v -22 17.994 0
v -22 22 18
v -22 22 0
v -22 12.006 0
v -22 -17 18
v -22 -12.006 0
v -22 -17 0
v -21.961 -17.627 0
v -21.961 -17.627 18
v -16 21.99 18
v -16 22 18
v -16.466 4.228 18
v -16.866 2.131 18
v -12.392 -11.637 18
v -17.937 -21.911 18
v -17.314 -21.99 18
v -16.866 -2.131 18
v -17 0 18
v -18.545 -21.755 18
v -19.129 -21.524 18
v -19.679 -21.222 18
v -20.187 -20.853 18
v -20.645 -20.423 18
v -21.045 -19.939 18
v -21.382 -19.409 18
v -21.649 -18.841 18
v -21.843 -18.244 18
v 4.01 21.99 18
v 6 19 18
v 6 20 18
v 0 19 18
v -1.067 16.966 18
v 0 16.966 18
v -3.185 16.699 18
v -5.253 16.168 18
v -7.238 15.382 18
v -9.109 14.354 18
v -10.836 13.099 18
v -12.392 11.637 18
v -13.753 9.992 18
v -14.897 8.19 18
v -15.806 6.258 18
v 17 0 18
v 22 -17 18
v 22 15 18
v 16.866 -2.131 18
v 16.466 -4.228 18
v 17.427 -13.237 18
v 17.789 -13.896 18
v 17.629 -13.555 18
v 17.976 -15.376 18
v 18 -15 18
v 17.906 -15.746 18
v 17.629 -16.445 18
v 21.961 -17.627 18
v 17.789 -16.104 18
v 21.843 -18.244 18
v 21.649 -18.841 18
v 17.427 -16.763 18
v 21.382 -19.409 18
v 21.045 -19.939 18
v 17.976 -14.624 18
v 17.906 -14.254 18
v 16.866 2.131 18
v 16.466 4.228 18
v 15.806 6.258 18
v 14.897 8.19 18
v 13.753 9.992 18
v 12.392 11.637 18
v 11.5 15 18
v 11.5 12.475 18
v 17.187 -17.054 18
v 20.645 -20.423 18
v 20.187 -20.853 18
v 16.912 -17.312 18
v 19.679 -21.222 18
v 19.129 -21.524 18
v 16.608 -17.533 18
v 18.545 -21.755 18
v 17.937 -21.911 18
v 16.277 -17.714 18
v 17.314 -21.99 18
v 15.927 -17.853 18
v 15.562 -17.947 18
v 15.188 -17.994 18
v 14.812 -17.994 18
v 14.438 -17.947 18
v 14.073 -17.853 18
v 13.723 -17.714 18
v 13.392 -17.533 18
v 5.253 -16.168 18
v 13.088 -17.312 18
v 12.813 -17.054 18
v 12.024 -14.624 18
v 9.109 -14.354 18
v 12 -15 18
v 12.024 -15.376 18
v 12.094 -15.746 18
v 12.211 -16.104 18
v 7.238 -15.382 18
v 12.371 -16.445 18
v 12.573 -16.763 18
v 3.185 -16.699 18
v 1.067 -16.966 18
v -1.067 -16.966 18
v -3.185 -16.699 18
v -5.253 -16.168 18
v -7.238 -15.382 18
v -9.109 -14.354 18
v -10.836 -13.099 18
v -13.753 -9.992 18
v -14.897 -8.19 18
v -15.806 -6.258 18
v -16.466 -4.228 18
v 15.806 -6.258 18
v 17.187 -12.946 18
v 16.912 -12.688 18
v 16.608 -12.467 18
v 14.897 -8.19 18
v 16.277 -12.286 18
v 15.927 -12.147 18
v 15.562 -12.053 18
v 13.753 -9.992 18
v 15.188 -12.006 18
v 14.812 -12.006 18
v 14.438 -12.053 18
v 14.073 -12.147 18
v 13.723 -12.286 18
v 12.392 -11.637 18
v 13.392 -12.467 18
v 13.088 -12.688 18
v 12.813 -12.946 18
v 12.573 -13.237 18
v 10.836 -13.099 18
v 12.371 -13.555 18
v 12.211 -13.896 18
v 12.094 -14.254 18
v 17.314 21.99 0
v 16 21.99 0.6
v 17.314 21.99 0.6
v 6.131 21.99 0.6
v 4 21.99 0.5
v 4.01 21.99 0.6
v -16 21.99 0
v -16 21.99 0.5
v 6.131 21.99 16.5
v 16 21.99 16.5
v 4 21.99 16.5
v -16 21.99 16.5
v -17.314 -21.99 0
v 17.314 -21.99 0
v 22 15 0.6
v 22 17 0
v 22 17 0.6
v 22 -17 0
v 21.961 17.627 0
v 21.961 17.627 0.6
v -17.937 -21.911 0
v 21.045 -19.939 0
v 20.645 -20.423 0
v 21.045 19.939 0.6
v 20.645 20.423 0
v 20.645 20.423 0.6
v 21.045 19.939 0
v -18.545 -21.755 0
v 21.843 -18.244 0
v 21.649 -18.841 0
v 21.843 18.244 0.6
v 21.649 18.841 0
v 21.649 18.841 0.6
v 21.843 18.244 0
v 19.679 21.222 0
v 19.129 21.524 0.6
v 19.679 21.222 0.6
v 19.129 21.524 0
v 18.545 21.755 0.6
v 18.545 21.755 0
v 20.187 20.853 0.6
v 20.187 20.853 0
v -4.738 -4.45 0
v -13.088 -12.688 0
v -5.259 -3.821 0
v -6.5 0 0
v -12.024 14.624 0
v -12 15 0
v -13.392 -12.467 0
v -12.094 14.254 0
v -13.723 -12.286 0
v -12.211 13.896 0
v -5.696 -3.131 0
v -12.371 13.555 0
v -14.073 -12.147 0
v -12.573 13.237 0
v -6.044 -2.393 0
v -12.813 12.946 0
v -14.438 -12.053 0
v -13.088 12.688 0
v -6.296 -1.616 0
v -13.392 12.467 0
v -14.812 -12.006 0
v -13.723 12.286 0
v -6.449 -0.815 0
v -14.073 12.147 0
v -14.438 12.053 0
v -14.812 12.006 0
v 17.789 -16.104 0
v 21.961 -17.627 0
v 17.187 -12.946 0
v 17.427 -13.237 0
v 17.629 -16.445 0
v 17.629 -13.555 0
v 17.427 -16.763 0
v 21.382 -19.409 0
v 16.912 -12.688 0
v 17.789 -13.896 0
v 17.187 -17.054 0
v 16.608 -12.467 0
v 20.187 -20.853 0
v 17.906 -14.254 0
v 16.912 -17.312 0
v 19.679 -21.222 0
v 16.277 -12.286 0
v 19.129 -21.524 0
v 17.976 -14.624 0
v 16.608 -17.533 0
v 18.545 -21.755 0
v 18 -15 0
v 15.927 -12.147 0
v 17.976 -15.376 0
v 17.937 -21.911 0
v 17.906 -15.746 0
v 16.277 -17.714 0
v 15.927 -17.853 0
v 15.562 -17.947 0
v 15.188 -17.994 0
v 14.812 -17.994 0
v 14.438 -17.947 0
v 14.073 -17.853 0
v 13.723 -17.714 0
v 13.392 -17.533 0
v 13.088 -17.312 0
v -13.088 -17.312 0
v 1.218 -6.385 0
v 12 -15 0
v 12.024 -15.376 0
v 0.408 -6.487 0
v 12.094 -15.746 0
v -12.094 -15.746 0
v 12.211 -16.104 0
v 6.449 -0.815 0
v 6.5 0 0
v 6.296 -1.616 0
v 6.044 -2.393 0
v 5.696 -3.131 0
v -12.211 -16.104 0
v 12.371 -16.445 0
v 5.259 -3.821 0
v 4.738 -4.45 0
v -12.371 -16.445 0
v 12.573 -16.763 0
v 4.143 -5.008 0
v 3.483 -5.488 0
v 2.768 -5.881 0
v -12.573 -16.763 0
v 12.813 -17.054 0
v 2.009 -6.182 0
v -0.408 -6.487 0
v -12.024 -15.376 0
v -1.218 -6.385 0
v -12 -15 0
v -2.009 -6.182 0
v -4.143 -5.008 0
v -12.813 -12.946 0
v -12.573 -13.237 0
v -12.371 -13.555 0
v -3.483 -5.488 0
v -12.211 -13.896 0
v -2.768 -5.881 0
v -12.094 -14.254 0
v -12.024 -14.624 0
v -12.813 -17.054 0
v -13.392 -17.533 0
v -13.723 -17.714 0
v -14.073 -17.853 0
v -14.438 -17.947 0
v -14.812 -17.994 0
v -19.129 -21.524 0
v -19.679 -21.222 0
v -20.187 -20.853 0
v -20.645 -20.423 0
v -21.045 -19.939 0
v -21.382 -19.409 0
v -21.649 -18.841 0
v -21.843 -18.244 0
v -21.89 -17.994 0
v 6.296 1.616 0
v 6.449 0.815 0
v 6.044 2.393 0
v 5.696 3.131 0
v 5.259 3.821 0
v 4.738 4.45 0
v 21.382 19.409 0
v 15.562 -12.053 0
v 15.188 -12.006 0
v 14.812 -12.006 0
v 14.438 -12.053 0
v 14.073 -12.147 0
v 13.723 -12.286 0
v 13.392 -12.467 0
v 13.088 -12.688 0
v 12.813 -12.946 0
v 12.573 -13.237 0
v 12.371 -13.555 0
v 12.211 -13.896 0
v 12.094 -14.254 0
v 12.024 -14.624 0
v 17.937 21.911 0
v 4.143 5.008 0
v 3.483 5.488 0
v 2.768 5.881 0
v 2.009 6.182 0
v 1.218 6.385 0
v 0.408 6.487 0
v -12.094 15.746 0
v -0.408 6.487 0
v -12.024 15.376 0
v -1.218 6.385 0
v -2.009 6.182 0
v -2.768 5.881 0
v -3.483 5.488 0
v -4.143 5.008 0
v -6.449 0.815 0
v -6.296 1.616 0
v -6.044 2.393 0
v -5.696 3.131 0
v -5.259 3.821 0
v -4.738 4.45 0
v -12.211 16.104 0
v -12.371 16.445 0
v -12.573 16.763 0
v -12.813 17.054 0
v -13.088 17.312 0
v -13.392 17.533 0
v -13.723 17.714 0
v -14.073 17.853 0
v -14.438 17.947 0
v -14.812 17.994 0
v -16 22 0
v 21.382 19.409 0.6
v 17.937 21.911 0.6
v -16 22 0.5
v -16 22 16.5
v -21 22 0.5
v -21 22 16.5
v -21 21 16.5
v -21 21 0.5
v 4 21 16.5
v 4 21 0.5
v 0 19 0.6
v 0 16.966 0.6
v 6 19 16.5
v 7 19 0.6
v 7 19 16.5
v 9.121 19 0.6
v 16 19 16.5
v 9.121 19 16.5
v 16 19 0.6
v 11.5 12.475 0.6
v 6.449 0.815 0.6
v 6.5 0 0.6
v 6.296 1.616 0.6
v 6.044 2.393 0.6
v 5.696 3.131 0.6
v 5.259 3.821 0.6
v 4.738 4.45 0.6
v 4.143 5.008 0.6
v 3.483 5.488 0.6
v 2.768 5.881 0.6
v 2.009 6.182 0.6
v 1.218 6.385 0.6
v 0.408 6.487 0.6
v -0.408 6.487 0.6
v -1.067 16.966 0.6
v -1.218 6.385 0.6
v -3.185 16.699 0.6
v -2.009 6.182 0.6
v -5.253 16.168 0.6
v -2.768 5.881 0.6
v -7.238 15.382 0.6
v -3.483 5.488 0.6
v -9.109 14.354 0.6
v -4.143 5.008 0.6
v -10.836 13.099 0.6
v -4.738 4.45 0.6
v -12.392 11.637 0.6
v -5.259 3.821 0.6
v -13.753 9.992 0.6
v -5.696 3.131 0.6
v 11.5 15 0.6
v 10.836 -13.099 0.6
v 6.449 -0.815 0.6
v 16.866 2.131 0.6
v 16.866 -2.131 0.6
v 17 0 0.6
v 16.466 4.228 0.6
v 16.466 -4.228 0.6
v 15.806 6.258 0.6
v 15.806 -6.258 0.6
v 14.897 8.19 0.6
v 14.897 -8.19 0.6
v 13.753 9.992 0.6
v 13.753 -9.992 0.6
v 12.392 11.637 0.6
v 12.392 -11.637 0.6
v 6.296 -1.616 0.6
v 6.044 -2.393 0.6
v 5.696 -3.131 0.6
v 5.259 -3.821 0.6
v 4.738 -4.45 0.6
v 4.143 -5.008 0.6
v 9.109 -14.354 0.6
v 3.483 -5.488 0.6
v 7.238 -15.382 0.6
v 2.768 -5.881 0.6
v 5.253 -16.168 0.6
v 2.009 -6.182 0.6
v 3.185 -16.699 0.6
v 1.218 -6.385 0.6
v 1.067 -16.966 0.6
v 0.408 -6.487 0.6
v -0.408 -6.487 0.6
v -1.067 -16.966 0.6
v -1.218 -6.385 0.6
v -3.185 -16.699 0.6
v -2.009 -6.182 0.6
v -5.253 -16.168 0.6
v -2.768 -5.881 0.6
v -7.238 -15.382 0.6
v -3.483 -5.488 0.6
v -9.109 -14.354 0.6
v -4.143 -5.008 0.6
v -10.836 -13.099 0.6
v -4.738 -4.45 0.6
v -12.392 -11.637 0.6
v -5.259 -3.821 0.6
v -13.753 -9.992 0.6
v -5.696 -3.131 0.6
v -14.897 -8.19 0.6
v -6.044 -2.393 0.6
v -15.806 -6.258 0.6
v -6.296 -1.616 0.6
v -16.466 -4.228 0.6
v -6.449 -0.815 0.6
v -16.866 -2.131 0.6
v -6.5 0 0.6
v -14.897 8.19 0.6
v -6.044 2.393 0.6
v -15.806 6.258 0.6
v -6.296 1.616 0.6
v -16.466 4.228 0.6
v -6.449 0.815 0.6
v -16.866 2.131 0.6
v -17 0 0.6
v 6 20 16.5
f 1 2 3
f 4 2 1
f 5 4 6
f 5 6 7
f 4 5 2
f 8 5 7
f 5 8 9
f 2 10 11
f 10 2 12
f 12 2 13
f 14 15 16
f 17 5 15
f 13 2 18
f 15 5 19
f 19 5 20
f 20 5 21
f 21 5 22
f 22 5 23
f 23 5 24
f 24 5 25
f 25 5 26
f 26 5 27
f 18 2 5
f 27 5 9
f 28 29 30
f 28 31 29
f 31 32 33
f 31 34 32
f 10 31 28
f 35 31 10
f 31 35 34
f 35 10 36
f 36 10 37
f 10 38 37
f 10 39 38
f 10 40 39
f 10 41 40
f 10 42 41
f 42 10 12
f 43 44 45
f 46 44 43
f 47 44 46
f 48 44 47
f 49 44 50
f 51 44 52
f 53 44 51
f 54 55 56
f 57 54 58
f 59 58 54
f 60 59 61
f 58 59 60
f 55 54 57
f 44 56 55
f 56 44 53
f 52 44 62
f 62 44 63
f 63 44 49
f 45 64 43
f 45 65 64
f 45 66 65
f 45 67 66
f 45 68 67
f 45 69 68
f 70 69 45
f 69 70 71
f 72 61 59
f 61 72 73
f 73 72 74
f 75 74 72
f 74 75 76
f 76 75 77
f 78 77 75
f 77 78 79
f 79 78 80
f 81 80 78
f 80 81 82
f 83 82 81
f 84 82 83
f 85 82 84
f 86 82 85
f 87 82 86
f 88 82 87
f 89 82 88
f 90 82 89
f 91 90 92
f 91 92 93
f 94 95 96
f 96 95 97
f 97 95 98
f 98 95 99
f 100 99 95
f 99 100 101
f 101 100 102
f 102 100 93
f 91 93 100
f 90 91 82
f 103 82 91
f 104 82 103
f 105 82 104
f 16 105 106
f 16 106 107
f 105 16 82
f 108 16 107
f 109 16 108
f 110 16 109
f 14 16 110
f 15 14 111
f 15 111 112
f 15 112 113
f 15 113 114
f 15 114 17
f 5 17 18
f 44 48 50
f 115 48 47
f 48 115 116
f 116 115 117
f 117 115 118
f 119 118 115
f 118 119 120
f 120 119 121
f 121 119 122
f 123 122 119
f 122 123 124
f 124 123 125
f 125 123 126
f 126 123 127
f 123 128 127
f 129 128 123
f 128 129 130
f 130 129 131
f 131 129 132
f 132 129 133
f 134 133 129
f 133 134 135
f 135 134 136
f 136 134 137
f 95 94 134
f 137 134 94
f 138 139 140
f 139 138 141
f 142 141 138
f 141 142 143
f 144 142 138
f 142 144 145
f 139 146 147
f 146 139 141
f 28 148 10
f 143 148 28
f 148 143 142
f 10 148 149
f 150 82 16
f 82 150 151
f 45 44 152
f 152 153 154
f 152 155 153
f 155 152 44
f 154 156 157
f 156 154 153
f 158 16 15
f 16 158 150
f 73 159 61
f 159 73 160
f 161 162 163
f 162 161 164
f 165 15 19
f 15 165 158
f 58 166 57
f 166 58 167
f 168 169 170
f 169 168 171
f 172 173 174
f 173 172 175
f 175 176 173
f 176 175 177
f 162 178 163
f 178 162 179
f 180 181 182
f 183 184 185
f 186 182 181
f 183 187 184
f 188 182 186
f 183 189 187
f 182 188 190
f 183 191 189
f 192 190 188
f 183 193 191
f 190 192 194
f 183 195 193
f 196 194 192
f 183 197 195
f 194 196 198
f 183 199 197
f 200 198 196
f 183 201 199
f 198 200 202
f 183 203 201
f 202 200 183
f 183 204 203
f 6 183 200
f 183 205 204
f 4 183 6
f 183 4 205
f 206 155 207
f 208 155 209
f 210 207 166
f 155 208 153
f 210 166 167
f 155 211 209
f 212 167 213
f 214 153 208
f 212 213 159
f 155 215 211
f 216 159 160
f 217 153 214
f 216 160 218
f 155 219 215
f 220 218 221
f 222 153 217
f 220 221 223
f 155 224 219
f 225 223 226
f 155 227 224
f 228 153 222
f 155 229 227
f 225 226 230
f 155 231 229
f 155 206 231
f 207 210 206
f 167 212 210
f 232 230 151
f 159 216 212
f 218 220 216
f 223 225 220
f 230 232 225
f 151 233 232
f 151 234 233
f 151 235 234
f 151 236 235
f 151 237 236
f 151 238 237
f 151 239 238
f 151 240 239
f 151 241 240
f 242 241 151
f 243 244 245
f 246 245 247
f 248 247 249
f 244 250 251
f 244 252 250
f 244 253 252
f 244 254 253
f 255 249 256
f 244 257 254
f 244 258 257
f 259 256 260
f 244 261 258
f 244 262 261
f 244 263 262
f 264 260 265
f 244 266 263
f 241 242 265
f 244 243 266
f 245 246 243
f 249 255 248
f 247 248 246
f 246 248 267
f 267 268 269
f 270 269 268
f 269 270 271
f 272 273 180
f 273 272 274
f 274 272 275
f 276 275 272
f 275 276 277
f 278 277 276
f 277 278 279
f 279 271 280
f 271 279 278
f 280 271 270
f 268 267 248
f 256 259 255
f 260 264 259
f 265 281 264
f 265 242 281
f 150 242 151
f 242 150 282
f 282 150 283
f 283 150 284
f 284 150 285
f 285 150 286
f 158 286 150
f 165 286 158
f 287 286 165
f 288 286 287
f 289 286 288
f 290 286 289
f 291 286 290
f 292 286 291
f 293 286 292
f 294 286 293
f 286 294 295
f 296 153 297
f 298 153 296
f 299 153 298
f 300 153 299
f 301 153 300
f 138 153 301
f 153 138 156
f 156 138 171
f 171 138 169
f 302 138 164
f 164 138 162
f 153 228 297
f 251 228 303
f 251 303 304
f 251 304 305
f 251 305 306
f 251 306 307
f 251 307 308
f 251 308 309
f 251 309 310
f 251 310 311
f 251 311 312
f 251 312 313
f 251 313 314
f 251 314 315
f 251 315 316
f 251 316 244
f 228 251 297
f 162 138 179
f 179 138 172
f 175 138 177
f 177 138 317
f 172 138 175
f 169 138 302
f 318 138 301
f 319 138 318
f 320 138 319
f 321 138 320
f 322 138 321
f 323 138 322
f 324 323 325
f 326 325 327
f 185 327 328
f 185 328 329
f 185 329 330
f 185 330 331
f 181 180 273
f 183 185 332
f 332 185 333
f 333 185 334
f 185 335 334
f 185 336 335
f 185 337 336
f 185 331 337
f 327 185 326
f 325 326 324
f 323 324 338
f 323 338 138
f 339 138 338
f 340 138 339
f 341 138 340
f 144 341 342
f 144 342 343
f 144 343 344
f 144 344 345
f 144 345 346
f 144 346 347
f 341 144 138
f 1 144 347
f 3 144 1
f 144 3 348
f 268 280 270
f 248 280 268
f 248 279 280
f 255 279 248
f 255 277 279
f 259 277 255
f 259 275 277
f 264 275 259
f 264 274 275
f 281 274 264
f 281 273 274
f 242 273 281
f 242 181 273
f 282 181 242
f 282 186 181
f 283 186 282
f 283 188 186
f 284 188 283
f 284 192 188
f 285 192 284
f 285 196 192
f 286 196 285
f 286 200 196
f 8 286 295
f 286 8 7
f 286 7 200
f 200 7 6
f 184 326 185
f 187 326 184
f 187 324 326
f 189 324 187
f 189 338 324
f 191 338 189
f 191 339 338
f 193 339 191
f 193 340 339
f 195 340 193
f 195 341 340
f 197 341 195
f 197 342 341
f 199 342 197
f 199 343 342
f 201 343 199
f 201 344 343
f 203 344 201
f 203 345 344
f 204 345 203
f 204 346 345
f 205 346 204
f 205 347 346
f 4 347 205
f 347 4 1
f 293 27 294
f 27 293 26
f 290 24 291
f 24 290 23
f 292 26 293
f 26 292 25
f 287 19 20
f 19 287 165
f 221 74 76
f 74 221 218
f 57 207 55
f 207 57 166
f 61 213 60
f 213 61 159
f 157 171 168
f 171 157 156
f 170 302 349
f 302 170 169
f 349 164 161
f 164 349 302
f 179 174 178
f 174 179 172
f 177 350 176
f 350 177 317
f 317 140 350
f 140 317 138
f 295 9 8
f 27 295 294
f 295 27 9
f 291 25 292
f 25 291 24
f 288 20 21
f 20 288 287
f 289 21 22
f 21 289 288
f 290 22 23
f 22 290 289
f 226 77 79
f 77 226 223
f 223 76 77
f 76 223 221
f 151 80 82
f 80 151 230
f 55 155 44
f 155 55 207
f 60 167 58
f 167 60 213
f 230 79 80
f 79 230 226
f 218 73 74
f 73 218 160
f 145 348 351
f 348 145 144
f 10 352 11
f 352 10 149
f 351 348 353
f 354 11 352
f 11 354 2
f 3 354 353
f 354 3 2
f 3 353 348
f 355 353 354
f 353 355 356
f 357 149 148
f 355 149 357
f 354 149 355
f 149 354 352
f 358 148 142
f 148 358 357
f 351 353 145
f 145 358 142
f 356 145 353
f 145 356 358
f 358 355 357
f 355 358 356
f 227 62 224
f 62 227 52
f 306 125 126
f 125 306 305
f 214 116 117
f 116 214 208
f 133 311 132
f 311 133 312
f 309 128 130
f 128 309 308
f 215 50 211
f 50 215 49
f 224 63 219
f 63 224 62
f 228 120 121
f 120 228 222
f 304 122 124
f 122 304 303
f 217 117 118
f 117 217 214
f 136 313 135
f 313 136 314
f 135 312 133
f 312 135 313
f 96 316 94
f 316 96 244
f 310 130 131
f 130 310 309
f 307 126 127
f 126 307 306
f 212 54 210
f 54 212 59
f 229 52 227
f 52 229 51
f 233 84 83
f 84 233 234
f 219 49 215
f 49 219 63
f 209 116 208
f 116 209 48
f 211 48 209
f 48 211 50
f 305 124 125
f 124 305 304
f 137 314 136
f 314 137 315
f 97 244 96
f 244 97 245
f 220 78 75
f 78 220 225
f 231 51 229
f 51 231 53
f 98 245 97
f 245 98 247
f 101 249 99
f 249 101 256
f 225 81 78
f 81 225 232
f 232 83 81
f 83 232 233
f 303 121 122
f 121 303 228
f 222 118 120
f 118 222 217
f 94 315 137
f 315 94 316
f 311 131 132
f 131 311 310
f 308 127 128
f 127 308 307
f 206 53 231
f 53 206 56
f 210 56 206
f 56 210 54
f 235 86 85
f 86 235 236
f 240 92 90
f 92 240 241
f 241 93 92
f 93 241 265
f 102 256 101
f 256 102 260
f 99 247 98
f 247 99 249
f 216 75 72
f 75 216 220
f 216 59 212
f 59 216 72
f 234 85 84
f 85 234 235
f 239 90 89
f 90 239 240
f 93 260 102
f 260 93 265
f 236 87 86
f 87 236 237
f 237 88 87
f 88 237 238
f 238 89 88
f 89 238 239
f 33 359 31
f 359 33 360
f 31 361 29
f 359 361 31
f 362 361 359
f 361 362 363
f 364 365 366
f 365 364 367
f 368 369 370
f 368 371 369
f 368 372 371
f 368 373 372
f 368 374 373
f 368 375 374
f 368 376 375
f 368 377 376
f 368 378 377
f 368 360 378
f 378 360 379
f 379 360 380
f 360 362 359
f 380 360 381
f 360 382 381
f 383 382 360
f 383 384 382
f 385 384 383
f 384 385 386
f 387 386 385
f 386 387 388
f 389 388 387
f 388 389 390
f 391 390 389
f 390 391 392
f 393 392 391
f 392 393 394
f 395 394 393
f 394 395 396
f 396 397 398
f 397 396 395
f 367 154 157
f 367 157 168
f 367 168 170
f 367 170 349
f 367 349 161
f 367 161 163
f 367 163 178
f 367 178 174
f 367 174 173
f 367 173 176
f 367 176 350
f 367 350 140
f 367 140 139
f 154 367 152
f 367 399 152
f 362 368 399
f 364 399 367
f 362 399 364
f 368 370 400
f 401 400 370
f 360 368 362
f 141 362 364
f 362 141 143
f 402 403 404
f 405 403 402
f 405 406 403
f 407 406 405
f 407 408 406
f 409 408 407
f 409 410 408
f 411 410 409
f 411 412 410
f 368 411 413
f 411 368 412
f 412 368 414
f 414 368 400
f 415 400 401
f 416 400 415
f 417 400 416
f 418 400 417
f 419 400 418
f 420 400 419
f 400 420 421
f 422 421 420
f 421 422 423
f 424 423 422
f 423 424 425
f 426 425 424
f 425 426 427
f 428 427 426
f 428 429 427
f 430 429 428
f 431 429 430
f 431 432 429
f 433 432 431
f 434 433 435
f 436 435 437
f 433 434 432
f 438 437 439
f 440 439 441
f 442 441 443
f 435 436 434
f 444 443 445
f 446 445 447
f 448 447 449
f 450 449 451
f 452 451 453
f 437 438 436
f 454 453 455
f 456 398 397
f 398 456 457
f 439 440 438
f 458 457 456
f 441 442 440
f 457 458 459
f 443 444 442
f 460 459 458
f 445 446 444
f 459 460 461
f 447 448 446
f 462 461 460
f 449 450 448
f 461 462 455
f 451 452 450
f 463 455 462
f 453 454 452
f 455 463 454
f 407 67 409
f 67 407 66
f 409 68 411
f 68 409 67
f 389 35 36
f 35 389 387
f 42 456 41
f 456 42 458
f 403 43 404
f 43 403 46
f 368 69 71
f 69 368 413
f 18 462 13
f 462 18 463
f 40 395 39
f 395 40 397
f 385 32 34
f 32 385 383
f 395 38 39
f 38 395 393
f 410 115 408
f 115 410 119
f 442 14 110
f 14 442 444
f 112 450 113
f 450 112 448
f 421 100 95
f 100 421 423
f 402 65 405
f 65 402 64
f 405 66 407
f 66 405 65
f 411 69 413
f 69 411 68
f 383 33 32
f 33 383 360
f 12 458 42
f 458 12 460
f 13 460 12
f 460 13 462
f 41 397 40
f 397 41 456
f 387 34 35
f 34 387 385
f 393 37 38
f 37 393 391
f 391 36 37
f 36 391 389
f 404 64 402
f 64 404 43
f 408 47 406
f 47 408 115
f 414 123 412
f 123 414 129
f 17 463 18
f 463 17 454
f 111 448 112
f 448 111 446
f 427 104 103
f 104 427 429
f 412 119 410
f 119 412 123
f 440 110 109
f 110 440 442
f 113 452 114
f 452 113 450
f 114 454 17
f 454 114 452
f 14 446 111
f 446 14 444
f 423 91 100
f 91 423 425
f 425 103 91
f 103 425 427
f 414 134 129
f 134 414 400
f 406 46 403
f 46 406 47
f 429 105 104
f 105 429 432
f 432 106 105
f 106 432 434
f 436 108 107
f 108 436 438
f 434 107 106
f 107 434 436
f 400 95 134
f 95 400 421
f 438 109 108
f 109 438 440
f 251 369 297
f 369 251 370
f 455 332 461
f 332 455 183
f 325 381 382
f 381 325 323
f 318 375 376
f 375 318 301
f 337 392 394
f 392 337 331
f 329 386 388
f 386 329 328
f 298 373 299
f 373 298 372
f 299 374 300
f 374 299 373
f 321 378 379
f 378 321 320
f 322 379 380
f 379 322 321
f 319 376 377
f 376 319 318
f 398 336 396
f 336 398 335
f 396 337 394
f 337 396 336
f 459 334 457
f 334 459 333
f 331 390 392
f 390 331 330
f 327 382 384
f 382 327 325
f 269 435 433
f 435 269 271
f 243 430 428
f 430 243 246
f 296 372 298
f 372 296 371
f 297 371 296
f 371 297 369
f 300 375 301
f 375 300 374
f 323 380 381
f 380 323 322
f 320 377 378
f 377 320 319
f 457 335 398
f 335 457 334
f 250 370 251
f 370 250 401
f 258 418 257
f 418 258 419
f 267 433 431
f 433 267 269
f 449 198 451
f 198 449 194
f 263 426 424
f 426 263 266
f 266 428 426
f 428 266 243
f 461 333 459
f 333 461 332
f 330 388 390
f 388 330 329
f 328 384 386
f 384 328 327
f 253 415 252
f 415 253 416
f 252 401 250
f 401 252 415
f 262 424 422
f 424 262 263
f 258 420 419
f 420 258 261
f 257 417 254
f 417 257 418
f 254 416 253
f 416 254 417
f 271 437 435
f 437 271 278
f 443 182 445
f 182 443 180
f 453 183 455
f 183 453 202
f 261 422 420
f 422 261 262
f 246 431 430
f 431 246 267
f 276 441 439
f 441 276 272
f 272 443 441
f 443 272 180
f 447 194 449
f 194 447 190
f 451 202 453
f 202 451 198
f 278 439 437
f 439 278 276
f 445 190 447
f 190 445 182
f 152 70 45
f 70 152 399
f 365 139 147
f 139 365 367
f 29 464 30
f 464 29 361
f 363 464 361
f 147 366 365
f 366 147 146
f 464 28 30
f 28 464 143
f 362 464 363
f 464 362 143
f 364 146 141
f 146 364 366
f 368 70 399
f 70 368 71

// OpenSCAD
$fn = 50;


difference() {
	union() {
		hull() {
			translate(v = [-17.0000000000, 17.0000000000, 0]) {
				cylinder(h = 18, r = 5);
			}
			translate(v = [17.0000000000, 17.0000000000, 0]) {
				cylinder(h = 18, r = 5);
			}
			translate(v = [-17.0000000000, -17.0000000000, 0]) {
				cylinder(h = 18, r = 5);
			}
			translate(v = [17.0000000000, -17.0000000000, 0]) {
				cylinder(h = 18, r = 5);
			}
		}
		translate(v = [-22.0000000000, 16.0000000000, 0]) {
			cube(size = [6, 6, 18]);
		}
	}
	union() {
		translate(v = [-22.5000000000, -15.0000000000, -250.0000000000]) {
			rotate(a = [0, 0, 0]) {
				difference() {
					union() {
						hull() {
							translate(v = [7.5000000000, 0, 0]) {
								cylinder(h = 250, r = 3.0000000000, r1 = 3.0000000000, r2 = 3.0000000000);
							}
							translate(v = [-7.5000000000, 0, 0]) {
								cylinder(h = 250, r = 3.0000000000, r1 = 3.0000000000, r2 = 3.0000000000);
							}
						}
					}
					union();
				}
			}
		}
		translate(v = [-22.5000000000, 15.0000000000, -250.0000000000]) {
			rotate(a = [0, 0, 0]) {
				difference() {
					union() {
						hull() {
							translate(v = [7.5000000000, 0, 0]) {
								cylinder(h = 250, r = 3.0000000000, r1 = 3.0000000000, r2 = 3.0000000000);
							}
							translate(v = [-7.5000000000, 0, 0]) {
								cylinder(h = 250, r = 3.0000000000, r1 = 3.0000000000, r2 = 3.0000000000);
							}
						}
					}
					union();
				}
			}
		}
		translate(v = [-21.0000000000, 21.0000000000, 0.5000000000]) {
			cube(size = [25, 1, 16]);
		}
		translate(v = [15.0000000000, -15.0000000000, -50.0000000000]) {
			cylinder(h = 100, r = 3.0000000000);
		}
		translate(v = [0.0000000000, 11.0000000000, 0.6000000000]) {
			cube(size = [11, 8, 20.4000000000]);
		}
		translate(v = [0, 0, 0.6000000000]) {
			cylinder(h = 20.4000000000, r = 17.0000000000);
		}
		translate(v = [0, 0, -9.0000000000]) {
			cylinder(h = 18, r = 6.5000000000);
		}
		translate(v = [0.0000000000, 15.0000000000, 0.6000000000]) {
			cube(size = [22.0000000000, 4, 20.4000000000]);
		}
		translate(v = [16.0000000000, 15.0000000000, 0.6000000000]) {
			cube(size = [6, 7, 20.4000000000]);
		}
		translate(v = [6.0000000000, 15.0000000000, 16.5000000000]) {
			cube(size = [16, 7, 1.5000000000]);
		}
		translate(v = [3.2500000000, 22.7500000000, 0.6000000000]) {
			rotate(a = [0, 0, -45]) {
				cube(size = [7.5000000000, 1.5000000000, 20.4000000000]);
			}
		}
		translate(v = [2.5000000000, 10.0000000000, 0.6000000000]) {
			cube(size = [9.0000000000, 5, 17.4000000000]);
		}
	}
}
